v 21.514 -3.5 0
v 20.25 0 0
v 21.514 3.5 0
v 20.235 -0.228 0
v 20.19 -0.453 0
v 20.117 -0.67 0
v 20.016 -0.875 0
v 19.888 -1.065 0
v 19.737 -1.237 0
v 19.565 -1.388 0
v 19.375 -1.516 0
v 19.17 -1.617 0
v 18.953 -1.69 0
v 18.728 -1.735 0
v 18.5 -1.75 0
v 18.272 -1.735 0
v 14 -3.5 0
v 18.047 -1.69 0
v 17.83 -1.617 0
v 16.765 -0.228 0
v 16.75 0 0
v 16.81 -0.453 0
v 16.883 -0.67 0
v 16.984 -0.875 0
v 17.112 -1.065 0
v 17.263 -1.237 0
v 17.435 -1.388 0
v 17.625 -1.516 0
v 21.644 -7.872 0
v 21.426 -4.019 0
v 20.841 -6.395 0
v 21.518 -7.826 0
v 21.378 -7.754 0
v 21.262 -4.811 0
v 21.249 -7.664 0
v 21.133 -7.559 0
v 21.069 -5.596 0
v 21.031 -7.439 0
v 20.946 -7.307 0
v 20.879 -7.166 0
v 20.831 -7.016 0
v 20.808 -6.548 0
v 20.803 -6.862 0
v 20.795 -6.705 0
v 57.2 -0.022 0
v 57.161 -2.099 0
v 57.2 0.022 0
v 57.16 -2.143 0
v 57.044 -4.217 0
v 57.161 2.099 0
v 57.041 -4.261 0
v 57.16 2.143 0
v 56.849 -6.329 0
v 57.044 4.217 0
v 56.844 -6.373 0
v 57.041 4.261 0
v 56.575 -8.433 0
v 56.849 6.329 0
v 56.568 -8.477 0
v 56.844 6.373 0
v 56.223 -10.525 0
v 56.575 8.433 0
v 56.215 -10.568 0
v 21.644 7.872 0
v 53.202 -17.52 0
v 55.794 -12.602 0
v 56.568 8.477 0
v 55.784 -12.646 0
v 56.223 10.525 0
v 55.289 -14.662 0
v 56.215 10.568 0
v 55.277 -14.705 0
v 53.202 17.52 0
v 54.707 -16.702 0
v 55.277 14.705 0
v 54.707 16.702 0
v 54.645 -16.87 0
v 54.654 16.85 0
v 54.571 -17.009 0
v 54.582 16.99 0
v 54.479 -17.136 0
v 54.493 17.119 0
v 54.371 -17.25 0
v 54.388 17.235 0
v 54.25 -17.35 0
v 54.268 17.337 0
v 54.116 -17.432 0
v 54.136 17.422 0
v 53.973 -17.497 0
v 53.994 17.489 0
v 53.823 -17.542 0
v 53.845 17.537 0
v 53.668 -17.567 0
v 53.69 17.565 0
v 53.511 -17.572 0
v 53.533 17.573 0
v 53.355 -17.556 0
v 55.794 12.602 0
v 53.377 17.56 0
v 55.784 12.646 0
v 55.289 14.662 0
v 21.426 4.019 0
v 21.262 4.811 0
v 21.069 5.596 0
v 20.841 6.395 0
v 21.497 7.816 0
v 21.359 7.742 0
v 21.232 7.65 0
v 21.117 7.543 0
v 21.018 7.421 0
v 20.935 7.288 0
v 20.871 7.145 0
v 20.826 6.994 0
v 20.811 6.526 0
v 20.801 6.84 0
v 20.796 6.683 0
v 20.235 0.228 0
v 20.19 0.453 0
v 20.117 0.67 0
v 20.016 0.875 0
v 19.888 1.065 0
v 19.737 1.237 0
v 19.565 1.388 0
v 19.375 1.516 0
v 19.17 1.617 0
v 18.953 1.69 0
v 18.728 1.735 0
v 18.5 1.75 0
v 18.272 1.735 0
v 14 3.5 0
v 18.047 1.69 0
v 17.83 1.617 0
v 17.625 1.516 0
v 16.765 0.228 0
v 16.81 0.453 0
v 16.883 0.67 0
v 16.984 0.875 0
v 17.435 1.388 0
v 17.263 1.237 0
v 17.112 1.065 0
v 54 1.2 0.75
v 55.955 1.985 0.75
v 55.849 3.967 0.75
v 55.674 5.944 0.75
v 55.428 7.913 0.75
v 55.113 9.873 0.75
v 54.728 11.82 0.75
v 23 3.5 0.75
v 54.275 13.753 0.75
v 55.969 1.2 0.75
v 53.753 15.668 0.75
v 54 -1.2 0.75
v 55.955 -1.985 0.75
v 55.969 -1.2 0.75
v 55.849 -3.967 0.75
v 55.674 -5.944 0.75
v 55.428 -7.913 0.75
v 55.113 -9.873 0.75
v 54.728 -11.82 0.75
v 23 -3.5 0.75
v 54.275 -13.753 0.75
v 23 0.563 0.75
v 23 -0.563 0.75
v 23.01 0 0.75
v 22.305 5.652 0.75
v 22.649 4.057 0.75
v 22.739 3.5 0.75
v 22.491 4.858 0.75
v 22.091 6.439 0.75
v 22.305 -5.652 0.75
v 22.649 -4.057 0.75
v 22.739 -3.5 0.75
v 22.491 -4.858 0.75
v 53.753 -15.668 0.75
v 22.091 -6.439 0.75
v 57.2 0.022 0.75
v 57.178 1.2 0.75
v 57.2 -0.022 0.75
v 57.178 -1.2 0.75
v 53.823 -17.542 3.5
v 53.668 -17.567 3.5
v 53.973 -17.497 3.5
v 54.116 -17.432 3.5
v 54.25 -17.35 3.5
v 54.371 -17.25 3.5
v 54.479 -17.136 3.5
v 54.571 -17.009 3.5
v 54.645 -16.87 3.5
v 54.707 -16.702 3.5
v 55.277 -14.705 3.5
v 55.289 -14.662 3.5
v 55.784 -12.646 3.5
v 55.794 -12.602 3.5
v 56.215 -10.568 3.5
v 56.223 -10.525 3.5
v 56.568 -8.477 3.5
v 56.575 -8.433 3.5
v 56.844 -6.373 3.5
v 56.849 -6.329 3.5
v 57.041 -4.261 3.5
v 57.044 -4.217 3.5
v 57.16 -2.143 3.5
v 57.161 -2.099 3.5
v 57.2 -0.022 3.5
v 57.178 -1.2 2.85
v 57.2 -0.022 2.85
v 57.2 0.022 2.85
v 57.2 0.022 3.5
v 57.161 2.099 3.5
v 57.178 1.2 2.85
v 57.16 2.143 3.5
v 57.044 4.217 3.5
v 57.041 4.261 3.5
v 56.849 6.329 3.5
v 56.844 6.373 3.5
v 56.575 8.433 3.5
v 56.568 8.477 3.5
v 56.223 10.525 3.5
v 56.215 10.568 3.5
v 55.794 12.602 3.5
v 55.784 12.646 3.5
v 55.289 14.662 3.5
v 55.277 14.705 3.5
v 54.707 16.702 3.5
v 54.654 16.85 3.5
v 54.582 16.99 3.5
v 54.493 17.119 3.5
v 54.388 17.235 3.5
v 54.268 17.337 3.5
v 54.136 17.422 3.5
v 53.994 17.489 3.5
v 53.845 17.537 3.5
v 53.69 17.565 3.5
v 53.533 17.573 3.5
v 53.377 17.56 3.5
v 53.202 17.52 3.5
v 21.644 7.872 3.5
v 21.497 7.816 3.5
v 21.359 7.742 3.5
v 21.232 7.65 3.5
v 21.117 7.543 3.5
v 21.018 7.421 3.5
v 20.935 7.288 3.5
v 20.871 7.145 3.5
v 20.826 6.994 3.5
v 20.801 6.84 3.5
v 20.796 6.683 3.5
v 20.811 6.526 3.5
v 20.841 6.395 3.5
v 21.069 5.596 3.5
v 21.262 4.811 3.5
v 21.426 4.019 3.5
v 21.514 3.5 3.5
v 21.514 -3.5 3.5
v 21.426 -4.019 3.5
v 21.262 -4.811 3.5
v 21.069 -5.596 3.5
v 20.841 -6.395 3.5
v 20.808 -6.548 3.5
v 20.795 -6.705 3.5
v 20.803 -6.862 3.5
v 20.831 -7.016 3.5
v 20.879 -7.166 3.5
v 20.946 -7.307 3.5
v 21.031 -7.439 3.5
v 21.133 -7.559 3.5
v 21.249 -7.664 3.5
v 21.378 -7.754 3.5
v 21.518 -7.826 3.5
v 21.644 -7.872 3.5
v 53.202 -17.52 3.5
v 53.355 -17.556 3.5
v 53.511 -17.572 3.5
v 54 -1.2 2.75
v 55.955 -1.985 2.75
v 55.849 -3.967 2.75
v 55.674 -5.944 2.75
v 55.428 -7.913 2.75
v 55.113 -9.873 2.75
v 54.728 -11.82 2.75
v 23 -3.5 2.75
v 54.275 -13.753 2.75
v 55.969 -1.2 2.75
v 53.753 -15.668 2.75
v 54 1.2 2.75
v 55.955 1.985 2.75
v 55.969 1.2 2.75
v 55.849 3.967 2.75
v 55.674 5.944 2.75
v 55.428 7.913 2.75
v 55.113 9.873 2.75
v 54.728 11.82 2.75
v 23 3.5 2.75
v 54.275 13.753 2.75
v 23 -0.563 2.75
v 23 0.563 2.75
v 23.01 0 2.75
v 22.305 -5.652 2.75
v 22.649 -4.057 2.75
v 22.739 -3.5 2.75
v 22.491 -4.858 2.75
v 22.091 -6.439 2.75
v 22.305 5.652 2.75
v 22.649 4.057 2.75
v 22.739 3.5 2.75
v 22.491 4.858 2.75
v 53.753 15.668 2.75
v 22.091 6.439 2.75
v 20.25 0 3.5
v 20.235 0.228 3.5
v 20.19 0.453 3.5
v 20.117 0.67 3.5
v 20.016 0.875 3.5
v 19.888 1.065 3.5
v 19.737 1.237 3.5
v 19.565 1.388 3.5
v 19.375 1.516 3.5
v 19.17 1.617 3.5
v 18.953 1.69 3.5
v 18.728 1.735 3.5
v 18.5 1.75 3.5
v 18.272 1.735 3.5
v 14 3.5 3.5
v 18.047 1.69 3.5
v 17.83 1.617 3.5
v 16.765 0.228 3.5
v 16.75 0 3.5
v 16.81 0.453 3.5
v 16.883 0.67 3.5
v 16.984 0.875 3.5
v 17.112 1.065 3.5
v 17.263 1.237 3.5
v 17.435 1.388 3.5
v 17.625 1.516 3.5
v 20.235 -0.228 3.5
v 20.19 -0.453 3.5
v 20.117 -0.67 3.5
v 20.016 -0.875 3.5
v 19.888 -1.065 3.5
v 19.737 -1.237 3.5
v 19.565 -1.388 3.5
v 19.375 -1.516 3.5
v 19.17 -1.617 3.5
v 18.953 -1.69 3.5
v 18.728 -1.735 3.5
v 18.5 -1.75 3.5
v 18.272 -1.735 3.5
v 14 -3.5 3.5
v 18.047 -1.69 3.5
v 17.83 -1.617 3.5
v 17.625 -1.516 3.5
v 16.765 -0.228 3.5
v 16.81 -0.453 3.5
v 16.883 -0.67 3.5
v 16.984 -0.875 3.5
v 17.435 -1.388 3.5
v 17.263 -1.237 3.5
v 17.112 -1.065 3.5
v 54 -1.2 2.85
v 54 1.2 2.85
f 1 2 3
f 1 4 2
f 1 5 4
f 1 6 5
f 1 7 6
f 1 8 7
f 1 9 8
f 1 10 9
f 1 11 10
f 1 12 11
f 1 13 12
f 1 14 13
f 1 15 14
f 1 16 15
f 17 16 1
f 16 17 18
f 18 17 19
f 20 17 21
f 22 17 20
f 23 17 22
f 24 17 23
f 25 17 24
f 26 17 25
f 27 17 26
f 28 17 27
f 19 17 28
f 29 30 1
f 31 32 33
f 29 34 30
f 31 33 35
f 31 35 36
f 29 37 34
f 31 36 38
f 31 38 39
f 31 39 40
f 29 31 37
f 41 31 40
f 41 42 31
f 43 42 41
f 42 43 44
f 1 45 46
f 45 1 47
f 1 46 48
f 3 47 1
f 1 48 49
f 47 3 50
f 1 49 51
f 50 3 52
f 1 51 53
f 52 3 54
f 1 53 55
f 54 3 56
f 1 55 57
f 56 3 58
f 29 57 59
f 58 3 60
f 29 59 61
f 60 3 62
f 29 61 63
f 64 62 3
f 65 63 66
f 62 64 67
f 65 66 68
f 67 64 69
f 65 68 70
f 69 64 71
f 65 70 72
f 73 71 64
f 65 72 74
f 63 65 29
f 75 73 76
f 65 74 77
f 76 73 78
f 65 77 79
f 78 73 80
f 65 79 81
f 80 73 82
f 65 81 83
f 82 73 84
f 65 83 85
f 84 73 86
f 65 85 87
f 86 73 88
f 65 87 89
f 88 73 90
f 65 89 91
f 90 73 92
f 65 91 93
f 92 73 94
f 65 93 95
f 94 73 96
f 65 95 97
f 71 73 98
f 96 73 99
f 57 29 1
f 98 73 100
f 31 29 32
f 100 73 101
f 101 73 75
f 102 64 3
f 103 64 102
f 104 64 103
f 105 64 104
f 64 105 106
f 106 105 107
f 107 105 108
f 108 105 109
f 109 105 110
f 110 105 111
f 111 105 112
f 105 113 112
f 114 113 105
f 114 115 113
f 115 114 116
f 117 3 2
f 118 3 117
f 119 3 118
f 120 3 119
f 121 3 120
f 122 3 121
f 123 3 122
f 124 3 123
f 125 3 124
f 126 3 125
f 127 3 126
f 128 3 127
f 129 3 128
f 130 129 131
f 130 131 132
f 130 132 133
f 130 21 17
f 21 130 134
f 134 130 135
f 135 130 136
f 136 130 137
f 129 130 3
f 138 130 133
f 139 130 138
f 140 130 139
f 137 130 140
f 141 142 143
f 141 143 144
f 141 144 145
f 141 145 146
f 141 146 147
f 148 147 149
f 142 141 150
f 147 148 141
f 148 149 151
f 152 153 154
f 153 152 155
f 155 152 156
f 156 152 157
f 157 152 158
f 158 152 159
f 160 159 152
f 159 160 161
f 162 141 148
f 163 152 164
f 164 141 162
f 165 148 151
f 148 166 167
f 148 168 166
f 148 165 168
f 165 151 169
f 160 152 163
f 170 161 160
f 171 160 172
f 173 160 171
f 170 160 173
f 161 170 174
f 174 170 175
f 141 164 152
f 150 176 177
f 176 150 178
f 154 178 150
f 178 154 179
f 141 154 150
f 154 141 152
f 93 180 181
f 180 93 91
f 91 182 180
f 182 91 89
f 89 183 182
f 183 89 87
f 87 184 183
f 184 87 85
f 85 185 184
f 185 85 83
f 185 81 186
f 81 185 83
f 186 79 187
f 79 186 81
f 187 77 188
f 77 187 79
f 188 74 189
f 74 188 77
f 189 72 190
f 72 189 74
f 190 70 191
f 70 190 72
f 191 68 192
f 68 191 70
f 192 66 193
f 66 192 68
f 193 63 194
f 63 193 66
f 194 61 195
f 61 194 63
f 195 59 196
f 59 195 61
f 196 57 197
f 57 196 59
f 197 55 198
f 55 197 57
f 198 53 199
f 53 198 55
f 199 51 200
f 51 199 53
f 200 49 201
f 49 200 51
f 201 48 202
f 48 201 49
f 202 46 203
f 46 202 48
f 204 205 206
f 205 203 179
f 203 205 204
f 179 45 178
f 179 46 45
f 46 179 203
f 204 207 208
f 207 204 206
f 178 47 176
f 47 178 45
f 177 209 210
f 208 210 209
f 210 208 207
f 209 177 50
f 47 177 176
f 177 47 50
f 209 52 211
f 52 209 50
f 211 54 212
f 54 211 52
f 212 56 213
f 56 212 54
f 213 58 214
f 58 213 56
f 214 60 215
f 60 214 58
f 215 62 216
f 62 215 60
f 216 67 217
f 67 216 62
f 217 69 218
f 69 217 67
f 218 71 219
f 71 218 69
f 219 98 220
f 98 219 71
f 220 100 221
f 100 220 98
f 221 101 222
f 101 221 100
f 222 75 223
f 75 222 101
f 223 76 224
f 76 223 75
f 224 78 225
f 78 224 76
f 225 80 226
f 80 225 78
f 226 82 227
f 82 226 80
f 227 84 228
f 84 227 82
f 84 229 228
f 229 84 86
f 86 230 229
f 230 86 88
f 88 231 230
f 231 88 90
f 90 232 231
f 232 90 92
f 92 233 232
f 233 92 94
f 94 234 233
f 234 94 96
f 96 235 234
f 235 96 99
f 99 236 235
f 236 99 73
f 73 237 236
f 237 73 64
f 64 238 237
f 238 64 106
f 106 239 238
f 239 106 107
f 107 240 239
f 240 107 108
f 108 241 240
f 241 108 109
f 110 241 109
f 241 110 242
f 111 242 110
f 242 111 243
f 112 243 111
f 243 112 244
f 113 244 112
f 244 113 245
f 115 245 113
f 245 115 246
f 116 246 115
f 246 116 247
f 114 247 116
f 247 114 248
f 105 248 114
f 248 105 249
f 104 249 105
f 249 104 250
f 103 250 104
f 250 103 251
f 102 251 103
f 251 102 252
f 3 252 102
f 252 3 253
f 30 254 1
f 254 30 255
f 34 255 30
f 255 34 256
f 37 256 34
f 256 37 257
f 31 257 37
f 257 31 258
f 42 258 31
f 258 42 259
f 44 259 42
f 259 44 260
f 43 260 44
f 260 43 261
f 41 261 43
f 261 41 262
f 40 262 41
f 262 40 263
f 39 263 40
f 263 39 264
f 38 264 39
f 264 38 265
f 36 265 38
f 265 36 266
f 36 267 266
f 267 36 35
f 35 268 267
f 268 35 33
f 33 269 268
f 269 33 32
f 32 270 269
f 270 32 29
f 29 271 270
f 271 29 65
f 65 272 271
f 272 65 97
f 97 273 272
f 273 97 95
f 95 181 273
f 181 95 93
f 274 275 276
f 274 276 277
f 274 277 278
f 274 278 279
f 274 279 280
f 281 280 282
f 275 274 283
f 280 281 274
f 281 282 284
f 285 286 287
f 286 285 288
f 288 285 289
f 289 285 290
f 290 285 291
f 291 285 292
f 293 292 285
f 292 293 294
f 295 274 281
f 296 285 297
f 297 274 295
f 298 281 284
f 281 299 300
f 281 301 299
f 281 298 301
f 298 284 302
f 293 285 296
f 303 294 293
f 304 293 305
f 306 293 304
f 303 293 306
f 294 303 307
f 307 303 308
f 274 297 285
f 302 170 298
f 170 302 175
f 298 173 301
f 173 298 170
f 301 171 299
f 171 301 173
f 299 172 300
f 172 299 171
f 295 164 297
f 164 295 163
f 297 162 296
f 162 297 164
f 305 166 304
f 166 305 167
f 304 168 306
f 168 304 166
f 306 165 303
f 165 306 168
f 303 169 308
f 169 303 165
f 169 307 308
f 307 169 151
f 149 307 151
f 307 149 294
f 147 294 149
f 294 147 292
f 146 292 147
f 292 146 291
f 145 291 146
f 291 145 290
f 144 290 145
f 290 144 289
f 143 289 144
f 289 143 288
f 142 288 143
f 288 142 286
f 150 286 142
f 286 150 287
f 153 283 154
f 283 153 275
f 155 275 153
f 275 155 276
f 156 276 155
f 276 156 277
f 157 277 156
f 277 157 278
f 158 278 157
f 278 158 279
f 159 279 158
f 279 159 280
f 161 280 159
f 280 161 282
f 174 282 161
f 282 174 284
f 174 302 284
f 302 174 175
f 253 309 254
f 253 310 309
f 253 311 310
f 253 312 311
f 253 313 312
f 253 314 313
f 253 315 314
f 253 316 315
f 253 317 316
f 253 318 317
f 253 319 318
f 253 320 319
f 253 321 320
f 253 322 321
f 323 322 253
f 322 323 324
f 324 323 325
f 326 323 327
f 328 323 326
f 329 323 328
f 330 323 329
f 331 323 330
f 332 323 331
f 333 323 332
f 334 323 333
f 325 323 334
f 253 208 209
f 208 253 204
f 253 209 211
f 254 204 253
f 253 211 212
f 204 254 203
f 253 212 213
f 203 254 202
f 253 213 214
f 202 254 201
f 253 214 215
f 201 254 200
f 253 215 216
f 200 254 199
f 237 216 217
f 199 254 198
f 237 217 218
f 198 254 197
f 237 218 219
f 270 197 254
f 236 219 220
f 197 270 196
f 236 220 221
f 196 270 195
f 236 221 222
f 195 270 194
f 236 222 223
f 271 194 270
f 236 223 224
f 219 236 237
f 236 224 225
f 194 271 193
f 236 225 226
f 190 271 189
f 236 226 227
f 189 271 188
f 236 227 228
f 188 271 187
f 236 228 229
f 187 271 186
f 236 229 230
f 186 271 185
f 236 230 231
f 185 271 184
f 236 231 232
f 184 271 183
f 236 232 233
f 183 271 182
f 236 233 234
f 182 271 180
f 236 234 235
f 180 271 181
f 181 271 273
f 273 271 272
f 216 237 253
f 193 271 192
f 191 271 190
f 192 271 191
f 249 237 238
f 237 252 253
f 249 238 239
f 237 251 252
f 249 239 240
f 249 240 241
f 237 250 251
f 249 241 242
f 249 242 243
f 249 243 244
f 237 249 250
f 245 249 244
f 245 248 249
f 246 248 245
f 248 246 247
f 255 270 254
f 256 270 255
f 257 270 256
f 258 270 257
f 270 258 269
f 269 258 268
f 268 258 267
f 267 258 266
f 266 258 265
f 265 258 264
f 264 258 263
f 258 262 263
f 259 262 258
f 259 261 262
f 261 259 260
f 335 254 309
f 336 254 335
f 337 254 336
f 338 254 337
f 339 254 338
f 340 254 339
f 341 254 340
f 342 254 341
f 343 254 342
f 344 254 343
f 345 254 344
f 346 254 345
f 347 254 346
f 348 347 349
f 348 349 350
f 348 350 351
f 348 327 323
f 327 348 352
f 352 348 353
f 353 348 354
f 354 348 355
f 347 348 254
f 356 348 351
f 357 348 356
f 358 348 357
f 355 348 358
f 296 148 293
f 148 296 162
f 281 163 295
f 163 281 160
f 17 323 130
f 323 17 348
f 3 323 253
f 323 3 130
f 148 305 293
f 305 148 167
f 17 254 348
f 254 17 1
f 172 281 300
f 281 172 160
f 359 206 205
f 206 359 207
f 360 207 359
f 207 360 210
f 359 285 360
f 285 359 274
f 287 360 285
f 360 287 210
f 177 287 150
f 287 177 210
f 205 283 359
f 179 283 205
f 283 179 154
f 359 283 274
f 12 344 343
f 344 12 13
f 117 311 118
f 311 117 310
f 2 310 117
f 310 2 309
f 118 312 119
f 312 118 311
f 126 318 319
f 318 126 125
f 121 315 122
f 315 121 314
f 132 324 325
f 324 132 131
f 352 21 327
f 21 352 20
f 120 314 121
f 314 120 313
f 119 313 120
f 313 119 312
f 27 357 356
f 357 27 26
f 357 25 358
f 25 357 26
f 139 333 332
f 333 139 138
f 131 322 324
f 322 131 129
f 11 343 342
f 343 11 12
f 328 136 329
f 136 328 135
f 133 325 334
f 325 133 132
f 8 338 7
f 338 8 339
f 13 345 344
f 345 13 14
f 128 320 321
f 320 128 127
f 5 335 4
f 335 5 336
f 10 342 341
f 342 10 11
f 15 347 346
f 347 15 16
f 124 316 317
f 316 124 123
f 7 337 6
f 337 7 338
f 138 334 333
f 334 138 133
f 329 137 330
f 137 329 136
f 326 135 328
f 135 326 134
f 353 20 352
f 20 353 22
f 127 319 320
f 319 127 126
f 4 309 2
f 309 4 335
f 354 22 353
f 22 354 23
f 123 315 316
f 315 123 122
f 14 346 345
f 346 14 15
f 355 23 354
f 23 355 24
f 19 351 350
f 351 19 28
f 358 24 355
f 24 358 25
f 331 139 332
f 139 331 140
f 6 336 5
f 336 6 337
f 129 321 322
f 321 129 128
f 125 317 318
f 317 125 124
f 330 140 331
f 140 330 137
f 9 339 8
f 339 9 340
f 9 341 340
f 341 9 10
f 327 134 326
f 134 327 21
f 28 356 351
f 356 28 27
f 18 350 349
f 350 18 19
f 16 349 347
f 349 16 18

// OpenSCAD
// file: parameters.scad
// =============================================================================
// Gen-W Triple-rotor dual-stator sandwich — WOUND-AWARE (HARD GATE)
// RotorA | StatorA | RotorMid | StatorB | RotorB
// Magnets: outer 5+5 Ø20, mid 6 Ø20 (3/face); Ø5 Halbach 16+16+16
// =============================================================================

wire_awg            = 26;
wire_od             = 0.45;
turns               = 110;      // 18 pancakes × 110 t ≈ 198 m @ mean 0.10 m
fill                = 0.70;
layers_per_face     = 2;
wind_build_axial    = layers_per_face * wire_od * fill;   // 0.63
wind_build_radial   = 2.8 * wire_od * fill;               // 0.882

coil_id_r           = 23.0;
coil_od_r           = 56.0;
span_deg            = 34.0;     // 9 stations × 40°
former_web          = 2.0;
flange_t            = 0.75;
wall                = 1.2;
slot_w              = 2.4;
mount_hole          = 3.5;
tab_len             = 7.0;

former_bare_h       = former_web + 2 * flange_t;            // 3.5
coil_envelope_h     = former_bare_h + 2 * wind_build_axial; // 4.76

// Each gap: magnet ↔ wound ≥ 0.75
run_clear           = 0.75;
gap_spacer_h        = run_clear + wind_build_axial;         // 1.38
// Outer gap m2m (outer rotor ↔ mid rotor face through one stator):
m2m_outer           = coil_envelope_h + 2 * run_clear;      // 6.26
m2m_inner           = m2m_outer;                            // symmetric gaps

coil_stations       = 9;        // per stator; ×2 = 18
bay_r_in            = coil_id_r - 2.0 - wind_build_radial;
bay_r_out           = coil_od_r + 2.0 + wind_build_radial;
bay_span            = span_deg + 4.0;
bay_offset          = 2.0;
bay_depth           = former_bare_h + wind_build_axial;     // seat bare+back wind
stator_back_web     = 2.0;
stator_thick        = bay_depth + stator_back_web;          // ~6.13
stator_od           = 156.0;
shaft_clear_stator  = 40.0;
coil_mount_r        = 30.0;

// Outer rotors: 5×Ø20 + 16×Ø5 each; Mid: 3+3 Ø20 + 16 Ø5 (both faces)
large_pocket_d      = 20.3;
small_pocket_d      = 5.3;
pocket_h            = 5.2;
outer_large_n       = 5;
mid_large_n_face    = 3;        // 3 per face = 6 mid
R_large             = 52.0;
R_small_inner       = 40.0;
R_small_mid         = 52.0;
R_small_outer       = 64.0;
carrier_od          = 152.0;
outer_carrier_thick = 7.5;
mid_carrier_thick   = 12.0;     // dual face 5.2+1.6+5.2
hub_h               = 10.0;
hub_od              = 30.0;

shaft_bore          = 8.35;
bearing_d           = 21.85;
bearing_h           = 7.2;
m3_clear            = 3.5;
bolt_r_inner        = 36.0;
bolt_n_inner        = 6;
flange_bolt_r       = 72.0;
flange_bolt_n       = 6;
brace_r             = 68.0;
brace_d             = 4.3;
brace_n             = 4;

spacer_pad_od       = 14.0;
spacer_pad_id       = m3_clear;
endbell_od          = 156.0;
endbell_thick       = 8.0;
endbell_shaft_clear = 10.0;

$fn = 64;
// main file
// Gen-W pancake former — print ×18
// WOUND: wind_build_axial=0.63, coil_envelope_h=4.76, magnet↔wound=0.75
include <parameters.scad>;
$fn = 48;

module sector_2d(r_in, r_out, ang) {
    polygon([
        for (a = [-ang/2 : ang/16 : ang/2]) [r_in*cos(a), r_in*sin(a)],
        for (a = [ang/2 : -ang/16 : -ang/2]) [r_out*cos(a), r_out*sin(a)]
    ]);
}
module flange() {
    linear_extrude(flange_t) offset(r=wall) sector_2d(coil_id_r, coil_od_r, span_deg);
}
difference() {
    union() {
        flange();
        translate([0, 0, flange_t])
            linear_extrude(former_web)
                difference() {
                    offset(r=wall) sector_2d(coil_id_r, coil_od_r, span_deg);
                    sector_2d(coil_id_r + 0.01, coil_od_r - 0.01, span_deg - 1.5);
                }
        translate([0, 0, flange_t + former_web]) flange();
        translate([coil_id_r - tab_len - 2, -3.5, 0])
            cube([tab_len + 2, 7, former_bare_h]);
    }
    translate([coil_od_r - 2, -slot_w/2, flange_t])
        cube([wall + 4, slot_w, former_web + 0.1]);
    translate([coil_id_r - tab_len/2 - 1, 0, -0.1])
        cylinder(d=mount_hole, h=former_bare_h + 1);
}
